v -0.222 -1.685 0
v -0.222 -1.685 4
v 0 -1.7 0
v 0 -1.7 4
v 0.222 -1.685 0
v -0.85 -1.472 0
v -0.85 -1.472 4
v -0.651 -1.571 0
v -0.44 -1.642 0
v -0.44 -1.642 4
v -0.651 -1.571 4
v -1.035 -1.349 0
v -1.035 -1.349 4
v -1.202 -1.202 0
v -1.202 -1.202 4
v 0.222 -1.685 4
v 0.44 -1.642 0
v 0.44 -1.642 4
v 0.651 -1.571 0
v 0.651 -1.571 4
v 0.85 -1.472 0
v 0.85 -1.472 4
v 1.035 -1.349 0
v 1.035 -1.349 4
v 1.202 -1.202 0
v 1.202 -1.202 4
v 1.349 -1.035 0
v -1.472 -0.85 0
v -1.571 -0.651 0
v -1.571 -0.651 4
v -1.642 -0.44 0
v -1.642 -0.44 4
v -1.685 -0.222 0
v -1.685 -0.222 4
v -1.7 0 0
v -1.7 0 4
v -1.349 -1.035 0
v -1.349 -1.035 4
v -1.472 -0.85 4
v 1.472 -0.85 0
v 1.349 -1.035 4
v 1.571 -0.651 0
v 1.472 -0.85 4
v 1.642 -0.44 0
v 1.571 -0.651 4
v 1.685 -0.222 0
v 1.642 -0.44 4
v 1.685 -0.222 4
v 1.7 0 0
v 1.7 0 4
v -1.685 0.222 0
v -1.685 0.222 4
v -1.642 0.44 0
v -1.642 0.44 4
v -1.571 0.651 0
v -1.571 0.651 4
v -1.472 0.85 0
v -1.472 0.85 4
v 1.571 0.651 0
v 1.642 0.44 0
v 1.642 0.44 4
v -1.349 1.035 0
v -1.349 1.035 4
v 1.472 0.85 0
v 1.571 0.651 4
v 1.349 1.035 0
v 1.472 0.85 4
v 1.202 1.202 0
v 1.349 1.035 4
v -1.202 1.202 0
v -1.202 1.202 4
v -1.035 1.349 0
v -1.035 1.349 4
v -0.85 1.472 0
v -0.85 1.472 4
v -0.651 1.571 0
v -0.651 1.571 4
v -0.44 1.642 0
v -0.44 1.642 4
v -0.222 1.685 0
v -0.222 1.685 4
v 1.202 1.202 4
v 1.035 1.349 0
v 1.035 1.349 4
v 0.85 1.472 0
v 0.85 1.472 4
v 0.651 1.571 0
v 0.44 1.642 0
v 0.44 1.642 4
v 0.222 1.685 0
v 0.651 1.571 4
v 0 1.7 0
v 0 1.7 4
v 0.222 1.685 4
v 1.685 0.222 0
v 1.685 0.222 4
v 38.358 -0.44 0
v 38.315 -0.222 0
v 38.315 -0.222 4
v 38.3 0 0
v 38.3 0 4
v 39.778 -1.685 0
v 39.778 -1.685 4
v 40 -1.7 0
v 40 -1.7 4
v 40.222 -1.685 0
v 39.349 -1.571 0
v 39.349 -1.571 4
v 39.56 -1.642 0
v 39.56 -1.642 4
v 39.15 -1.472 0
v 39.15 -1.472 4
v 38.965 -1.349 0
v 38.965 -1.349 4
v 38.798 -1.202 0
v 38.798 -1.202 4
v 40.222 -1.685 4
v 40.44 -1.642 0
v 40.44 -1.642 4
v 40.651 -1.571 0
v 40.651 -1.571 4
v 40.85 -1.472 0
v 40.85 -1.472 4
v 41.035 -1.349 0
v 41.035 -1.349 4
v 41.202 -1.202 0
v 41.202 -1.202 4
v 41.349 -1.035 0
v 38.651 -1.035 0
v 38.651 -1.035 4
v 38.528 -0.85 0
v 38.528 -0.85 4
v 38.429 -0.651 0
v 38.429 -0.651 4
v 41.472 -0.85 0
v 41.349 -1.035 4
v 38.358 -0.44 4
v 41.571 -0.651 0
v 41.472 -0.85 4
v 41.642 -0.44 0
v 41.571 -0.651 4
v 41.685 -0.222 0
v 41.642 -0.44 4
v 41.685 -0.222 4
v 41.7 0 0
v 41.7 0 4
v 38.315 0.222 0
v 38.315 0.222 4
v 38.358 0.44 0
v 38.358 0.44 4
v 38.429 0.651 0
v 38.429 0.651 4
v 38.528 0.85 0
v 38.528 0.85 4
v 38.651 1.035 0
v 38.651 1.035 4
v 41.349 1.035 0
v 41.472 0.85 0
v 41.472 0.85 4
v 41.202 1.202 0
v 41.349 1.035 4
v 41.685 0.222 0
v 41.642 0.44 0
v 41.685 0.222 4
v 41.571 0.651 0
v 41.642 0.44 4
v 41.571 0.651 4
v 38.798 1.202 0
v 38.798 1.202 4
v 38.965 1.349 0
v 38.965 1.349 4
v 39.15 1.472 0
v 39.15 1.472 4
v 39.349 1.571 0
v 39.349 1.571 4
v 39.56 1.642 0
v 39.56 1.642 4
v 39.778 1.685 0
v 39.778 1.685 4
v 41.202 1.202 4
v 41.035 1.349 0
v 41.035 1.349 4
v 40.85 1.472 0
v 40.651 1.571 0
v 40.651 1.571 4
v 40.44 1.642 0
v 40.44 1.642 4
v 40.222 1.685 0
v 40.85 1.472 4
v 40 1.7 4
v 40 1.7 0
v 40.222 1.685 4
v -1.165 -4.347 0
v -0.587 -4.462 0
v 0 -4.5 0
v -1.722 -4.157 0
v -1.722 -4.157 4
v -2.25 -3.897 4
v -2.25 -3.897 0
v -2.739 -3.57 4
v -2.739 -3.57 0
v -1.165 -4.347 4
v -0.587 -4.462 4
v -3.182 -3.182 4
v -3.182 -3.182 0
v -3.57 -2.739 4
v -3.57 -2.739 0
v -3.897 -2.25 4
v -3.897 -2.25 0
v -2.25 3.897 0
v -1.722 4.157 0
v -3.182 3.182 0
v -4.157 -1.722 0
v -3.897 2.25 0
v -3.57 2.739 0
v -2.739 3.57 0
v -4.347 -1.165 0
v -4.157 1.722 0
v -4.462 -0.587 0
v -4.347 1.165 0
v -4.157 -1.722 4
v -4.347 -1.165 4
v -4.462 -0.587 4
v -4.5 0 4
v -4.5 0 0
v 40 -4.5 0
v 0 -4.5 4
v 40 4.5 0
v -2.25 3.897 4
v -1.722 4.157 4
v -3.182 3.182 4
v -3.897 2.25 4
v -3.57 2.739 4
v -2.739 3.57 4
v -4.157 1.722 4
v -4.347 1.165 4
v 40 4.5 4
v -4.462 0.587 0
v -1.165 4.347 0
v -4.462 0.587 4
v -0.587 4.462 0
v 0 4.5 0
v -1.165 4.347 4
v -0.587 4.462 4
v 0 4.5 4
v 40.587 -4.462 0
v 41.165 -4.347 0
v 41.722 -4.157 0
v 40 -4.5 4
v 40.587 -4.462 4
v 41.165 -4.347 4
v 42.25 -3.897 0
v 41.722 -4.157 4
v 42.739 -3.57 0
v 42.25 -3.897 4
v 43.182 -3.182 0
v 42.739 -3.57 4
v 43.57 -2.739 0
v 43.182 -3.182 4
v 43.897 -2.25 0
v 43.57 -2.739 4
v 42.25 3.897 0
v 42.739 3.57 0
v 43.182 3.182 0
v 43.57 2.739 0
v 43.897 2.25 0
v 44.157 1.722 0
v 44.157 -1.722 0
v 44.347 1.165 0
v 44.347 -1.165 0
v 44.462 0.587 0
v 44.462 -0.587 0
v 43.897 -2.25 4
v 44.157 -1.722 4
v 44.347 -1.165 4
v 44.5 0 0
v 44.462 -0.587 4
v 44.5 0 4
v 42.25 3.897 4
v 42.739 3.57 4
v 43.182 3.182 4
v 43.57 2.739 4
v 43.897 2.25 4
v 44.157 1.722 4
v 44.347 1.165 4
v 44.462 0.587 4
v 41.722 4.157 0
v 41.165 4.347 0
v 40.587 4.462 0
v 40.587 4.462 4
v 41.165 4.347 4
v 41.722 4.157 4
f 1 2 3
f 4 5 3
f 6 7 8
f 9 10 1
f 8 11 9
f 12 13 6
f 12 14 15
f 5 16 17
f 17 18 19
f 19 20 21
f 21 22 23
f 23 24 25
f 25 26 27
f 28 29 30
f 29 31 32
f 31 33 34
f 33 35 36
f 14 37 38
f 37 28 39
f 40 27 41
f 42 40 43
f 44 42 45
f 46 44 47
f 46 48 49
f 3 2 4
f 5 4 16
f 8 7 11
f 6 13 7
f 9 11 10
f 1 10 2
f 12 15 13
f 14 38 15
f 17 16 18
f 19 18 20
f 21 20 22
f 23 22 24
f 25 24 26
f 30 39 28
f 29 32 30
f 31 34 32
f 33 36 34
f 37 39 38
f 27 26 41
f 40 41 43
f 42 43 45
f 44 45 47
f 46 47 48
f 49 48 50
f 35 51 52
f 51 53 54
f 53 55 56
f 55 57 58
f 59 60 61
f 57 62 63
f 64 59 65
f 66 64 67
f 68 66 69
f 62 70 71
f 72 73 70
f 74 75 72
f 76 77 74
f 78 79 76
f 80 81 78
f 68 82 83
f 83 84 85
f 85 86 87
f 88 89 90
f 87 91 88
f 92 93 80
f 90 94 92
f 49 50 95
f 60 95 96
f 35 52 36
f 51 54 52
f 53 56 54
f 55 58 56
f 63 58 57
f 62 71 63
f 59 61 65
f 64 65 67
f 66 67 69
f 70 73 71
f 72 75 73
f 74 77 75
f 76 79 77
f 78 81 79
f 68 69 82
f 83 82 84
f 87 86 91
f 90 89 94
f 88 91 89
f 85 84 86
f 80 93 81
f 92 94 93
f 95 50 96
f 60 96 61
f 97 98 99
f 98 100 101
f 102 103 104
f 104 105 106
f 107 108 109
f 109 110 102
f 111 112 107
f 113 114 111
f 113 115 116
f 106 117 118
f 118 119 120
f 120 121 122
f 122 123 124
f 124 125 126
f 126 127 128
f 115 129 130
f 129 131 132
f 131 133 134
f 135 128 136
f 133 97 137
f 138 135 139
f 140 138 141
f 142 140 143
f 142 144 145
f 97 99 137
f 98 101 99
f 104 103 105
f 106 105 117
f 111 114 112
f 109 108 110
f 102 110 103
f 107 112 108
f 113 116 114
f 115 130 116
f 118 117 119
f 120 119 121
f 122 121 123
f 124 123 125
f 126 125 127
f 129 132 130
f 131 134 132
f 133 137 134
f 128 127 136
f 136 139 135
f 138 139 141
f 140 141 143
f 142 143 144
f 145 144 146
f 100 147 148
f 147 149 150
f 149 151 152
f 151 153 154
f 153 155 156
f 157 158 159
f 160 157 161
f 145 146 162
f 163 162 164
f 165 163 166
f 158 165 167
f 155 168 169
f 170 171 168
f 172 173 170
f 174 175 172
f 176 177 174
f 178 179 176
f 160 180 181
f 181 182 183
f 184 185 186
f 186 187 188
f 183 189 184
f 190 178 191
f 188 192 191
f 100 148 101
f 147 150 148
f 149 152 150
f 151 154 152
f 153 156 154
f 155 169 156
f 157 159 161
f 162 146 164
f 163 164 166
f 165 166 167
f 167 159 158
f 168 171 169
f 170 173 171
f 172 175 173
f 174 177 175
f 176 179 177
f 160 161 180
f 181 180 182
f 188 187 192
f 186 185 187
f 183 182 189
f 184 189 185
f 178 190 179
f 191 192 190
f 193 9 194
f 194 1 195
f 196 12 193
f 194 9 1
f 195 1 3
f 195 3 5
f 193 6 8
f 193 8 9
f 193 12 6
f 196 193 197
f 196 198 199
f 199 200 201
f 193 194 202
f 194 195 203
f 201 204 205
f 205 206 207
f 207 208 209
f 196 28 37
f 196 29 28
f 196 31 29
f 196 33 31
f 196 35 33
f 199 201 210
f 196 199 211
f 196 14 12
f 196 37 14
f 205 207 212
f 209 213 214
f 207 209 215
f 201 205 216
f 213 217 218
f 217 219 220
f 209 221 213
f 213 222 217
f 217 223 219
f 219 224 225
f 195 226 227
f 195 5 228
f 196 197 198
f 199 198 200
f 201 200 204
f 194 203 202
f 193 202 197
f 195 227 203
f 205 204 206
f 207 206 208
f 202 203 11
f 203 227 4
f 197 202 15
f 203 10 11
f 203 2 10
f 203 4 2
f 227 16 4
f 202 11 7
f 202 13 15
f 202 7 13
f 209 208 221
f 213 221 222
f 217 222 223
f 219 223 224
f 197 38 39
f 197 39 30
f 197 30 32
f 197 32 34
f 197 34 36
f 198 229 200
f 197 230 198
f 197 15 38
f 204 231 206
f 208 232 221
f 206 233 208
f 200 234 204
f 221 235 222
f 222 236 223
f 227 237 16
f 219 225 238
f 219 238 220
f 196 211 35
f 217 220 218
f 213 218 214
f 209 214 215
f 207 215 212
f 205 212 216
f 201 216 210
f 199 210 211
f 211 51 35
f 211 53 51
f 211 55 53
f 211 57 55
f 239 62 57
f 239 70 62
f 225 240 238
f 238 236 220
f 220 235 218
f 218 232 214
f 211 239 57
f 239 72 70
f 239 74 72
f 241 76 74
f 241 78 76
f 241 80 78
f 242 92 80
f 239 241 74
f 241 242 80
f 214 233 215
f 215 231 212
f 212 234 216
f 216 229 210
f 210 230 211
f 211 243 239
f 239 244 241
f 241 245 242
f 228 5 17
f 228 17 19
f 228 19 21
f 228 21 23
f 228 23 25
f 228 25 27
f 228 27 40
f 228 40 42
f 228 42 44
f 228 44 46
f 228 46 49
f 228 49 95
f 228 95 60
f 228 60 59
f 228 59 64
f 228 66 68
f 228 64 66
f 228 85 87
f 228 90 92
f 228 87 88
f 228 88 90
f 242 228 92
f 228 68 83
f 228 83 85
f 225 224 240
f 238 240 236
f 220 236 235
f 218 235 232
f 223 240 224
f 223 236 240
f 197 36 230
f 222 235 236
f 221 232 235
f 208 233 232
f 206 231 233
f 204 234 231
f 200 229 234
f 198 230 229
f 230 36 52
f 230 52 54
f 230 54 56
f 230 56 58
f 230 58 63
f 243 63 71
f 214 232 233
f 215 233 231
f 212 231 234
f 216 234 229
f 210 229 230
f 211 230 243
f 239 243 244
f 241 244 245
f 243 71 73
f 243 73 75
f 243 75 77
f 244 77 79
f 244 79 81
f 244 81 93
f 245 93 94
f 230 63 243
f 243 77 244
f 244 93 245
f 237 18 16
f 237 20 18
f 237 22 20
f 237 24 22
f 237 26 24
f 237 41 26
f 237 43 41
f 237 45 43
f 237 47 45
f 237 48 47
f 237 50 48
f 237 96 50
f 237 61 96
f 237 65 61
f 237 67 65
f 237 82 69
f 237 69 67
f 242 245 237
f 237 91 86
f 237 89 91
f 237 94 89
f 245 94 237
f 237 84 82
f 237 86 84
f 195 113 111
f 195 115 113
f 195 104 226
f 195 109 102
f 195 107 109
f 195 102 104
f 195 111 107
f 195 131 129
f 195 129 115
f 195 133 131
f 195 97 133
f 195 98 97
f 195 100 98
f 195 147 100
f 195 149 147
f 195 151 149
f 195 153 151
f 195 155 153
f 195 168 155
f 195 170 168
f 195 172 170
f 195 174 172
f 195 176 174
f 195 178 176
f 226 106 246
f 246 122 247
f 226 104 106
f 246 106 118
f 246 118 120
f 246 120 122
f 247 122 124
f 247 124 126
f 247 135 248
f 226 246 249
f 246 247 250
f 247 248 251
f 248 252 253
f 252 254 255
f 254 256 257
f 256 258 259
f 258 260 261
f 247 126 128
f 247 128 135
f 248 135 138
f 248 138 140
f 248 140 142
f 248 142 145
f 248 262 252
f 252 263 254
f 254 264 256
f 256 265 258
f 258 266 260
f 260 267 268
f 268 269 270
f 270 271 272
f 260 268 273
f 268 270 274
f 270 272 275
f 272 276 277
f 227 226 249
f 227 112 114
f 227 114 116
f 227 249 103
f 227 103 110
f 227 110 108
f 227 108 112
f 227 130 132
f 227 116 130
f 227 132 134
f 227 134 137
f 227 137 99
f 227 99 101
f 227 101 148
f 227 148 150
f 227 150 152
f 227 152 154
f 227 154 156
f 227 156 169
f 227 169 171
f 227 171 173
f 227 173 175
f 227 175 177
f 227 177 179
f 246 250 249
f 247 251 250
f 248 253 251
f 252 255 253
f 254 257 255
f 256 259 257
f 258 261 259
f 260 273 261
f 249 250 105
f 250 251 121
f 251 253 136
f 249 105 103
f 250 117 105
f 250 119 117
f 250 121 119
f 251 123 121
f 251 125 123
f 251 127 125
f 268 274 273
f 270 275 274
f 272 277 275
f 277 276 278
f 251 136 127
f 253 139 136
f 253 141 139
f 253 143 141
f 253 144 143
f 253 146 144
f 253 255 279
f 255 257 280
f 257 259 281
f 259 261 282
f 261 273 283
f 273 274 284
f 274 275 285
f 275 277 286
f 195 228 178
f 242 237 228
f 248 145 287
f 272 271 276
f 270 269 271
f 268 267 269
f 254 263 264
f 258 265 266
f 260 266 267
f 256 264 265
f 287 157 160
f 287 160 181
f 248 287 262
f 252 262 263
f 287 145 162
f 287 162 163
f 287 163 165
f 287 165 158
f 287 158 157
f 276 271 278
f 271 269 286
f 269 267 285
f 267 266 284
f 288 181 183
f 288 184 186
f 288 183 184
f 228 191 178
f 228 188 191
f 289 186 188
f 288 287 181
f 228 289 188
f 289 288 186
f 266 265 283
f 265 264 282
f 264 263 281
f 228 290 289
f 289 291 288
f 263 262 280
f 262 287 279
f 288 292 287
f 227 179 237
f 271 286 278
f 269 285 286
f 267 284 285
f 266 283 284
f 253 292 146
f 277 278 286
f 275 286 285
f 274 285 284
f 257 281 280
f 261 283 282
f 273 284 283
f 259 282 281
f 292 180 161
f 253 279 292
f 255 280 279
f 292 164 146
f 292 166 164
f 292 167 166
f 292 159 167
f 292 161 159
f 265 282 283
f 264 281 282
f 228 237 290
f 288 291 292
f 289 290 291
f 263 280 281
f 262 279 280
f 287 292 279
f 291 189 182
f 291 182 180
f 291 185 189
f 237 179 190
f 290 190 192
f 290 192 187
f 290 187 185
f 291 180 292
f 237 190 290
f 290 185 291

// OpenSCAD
// PROVISIONAL upper rigid rod, bell crank to moving lid.
include <parameters.scad>
$fn = 48;
assert(bell_upper_rod_length > stage2_rod_width + 10);
assert(stage2_rod_width > stage2_pivot_hole_d + 4);

module pushrod_lid() {
    difference() {
        linear_extrude(height = stage2_rod_thickness)
            hull() {
                circle(d = stage2_rod_width);
                translate([bell_upper_rod_length, 0]) circle(d = stage2_rod_width);
            }
        for (x = [0, bell_upper_rod_length])
            translate([x, 0, -0.1])
                cylinder(d = stage2_pivot_hole_d,
                         h = stage2_rod_thickness + 0.2);
    }
}

pushrod_lid();
